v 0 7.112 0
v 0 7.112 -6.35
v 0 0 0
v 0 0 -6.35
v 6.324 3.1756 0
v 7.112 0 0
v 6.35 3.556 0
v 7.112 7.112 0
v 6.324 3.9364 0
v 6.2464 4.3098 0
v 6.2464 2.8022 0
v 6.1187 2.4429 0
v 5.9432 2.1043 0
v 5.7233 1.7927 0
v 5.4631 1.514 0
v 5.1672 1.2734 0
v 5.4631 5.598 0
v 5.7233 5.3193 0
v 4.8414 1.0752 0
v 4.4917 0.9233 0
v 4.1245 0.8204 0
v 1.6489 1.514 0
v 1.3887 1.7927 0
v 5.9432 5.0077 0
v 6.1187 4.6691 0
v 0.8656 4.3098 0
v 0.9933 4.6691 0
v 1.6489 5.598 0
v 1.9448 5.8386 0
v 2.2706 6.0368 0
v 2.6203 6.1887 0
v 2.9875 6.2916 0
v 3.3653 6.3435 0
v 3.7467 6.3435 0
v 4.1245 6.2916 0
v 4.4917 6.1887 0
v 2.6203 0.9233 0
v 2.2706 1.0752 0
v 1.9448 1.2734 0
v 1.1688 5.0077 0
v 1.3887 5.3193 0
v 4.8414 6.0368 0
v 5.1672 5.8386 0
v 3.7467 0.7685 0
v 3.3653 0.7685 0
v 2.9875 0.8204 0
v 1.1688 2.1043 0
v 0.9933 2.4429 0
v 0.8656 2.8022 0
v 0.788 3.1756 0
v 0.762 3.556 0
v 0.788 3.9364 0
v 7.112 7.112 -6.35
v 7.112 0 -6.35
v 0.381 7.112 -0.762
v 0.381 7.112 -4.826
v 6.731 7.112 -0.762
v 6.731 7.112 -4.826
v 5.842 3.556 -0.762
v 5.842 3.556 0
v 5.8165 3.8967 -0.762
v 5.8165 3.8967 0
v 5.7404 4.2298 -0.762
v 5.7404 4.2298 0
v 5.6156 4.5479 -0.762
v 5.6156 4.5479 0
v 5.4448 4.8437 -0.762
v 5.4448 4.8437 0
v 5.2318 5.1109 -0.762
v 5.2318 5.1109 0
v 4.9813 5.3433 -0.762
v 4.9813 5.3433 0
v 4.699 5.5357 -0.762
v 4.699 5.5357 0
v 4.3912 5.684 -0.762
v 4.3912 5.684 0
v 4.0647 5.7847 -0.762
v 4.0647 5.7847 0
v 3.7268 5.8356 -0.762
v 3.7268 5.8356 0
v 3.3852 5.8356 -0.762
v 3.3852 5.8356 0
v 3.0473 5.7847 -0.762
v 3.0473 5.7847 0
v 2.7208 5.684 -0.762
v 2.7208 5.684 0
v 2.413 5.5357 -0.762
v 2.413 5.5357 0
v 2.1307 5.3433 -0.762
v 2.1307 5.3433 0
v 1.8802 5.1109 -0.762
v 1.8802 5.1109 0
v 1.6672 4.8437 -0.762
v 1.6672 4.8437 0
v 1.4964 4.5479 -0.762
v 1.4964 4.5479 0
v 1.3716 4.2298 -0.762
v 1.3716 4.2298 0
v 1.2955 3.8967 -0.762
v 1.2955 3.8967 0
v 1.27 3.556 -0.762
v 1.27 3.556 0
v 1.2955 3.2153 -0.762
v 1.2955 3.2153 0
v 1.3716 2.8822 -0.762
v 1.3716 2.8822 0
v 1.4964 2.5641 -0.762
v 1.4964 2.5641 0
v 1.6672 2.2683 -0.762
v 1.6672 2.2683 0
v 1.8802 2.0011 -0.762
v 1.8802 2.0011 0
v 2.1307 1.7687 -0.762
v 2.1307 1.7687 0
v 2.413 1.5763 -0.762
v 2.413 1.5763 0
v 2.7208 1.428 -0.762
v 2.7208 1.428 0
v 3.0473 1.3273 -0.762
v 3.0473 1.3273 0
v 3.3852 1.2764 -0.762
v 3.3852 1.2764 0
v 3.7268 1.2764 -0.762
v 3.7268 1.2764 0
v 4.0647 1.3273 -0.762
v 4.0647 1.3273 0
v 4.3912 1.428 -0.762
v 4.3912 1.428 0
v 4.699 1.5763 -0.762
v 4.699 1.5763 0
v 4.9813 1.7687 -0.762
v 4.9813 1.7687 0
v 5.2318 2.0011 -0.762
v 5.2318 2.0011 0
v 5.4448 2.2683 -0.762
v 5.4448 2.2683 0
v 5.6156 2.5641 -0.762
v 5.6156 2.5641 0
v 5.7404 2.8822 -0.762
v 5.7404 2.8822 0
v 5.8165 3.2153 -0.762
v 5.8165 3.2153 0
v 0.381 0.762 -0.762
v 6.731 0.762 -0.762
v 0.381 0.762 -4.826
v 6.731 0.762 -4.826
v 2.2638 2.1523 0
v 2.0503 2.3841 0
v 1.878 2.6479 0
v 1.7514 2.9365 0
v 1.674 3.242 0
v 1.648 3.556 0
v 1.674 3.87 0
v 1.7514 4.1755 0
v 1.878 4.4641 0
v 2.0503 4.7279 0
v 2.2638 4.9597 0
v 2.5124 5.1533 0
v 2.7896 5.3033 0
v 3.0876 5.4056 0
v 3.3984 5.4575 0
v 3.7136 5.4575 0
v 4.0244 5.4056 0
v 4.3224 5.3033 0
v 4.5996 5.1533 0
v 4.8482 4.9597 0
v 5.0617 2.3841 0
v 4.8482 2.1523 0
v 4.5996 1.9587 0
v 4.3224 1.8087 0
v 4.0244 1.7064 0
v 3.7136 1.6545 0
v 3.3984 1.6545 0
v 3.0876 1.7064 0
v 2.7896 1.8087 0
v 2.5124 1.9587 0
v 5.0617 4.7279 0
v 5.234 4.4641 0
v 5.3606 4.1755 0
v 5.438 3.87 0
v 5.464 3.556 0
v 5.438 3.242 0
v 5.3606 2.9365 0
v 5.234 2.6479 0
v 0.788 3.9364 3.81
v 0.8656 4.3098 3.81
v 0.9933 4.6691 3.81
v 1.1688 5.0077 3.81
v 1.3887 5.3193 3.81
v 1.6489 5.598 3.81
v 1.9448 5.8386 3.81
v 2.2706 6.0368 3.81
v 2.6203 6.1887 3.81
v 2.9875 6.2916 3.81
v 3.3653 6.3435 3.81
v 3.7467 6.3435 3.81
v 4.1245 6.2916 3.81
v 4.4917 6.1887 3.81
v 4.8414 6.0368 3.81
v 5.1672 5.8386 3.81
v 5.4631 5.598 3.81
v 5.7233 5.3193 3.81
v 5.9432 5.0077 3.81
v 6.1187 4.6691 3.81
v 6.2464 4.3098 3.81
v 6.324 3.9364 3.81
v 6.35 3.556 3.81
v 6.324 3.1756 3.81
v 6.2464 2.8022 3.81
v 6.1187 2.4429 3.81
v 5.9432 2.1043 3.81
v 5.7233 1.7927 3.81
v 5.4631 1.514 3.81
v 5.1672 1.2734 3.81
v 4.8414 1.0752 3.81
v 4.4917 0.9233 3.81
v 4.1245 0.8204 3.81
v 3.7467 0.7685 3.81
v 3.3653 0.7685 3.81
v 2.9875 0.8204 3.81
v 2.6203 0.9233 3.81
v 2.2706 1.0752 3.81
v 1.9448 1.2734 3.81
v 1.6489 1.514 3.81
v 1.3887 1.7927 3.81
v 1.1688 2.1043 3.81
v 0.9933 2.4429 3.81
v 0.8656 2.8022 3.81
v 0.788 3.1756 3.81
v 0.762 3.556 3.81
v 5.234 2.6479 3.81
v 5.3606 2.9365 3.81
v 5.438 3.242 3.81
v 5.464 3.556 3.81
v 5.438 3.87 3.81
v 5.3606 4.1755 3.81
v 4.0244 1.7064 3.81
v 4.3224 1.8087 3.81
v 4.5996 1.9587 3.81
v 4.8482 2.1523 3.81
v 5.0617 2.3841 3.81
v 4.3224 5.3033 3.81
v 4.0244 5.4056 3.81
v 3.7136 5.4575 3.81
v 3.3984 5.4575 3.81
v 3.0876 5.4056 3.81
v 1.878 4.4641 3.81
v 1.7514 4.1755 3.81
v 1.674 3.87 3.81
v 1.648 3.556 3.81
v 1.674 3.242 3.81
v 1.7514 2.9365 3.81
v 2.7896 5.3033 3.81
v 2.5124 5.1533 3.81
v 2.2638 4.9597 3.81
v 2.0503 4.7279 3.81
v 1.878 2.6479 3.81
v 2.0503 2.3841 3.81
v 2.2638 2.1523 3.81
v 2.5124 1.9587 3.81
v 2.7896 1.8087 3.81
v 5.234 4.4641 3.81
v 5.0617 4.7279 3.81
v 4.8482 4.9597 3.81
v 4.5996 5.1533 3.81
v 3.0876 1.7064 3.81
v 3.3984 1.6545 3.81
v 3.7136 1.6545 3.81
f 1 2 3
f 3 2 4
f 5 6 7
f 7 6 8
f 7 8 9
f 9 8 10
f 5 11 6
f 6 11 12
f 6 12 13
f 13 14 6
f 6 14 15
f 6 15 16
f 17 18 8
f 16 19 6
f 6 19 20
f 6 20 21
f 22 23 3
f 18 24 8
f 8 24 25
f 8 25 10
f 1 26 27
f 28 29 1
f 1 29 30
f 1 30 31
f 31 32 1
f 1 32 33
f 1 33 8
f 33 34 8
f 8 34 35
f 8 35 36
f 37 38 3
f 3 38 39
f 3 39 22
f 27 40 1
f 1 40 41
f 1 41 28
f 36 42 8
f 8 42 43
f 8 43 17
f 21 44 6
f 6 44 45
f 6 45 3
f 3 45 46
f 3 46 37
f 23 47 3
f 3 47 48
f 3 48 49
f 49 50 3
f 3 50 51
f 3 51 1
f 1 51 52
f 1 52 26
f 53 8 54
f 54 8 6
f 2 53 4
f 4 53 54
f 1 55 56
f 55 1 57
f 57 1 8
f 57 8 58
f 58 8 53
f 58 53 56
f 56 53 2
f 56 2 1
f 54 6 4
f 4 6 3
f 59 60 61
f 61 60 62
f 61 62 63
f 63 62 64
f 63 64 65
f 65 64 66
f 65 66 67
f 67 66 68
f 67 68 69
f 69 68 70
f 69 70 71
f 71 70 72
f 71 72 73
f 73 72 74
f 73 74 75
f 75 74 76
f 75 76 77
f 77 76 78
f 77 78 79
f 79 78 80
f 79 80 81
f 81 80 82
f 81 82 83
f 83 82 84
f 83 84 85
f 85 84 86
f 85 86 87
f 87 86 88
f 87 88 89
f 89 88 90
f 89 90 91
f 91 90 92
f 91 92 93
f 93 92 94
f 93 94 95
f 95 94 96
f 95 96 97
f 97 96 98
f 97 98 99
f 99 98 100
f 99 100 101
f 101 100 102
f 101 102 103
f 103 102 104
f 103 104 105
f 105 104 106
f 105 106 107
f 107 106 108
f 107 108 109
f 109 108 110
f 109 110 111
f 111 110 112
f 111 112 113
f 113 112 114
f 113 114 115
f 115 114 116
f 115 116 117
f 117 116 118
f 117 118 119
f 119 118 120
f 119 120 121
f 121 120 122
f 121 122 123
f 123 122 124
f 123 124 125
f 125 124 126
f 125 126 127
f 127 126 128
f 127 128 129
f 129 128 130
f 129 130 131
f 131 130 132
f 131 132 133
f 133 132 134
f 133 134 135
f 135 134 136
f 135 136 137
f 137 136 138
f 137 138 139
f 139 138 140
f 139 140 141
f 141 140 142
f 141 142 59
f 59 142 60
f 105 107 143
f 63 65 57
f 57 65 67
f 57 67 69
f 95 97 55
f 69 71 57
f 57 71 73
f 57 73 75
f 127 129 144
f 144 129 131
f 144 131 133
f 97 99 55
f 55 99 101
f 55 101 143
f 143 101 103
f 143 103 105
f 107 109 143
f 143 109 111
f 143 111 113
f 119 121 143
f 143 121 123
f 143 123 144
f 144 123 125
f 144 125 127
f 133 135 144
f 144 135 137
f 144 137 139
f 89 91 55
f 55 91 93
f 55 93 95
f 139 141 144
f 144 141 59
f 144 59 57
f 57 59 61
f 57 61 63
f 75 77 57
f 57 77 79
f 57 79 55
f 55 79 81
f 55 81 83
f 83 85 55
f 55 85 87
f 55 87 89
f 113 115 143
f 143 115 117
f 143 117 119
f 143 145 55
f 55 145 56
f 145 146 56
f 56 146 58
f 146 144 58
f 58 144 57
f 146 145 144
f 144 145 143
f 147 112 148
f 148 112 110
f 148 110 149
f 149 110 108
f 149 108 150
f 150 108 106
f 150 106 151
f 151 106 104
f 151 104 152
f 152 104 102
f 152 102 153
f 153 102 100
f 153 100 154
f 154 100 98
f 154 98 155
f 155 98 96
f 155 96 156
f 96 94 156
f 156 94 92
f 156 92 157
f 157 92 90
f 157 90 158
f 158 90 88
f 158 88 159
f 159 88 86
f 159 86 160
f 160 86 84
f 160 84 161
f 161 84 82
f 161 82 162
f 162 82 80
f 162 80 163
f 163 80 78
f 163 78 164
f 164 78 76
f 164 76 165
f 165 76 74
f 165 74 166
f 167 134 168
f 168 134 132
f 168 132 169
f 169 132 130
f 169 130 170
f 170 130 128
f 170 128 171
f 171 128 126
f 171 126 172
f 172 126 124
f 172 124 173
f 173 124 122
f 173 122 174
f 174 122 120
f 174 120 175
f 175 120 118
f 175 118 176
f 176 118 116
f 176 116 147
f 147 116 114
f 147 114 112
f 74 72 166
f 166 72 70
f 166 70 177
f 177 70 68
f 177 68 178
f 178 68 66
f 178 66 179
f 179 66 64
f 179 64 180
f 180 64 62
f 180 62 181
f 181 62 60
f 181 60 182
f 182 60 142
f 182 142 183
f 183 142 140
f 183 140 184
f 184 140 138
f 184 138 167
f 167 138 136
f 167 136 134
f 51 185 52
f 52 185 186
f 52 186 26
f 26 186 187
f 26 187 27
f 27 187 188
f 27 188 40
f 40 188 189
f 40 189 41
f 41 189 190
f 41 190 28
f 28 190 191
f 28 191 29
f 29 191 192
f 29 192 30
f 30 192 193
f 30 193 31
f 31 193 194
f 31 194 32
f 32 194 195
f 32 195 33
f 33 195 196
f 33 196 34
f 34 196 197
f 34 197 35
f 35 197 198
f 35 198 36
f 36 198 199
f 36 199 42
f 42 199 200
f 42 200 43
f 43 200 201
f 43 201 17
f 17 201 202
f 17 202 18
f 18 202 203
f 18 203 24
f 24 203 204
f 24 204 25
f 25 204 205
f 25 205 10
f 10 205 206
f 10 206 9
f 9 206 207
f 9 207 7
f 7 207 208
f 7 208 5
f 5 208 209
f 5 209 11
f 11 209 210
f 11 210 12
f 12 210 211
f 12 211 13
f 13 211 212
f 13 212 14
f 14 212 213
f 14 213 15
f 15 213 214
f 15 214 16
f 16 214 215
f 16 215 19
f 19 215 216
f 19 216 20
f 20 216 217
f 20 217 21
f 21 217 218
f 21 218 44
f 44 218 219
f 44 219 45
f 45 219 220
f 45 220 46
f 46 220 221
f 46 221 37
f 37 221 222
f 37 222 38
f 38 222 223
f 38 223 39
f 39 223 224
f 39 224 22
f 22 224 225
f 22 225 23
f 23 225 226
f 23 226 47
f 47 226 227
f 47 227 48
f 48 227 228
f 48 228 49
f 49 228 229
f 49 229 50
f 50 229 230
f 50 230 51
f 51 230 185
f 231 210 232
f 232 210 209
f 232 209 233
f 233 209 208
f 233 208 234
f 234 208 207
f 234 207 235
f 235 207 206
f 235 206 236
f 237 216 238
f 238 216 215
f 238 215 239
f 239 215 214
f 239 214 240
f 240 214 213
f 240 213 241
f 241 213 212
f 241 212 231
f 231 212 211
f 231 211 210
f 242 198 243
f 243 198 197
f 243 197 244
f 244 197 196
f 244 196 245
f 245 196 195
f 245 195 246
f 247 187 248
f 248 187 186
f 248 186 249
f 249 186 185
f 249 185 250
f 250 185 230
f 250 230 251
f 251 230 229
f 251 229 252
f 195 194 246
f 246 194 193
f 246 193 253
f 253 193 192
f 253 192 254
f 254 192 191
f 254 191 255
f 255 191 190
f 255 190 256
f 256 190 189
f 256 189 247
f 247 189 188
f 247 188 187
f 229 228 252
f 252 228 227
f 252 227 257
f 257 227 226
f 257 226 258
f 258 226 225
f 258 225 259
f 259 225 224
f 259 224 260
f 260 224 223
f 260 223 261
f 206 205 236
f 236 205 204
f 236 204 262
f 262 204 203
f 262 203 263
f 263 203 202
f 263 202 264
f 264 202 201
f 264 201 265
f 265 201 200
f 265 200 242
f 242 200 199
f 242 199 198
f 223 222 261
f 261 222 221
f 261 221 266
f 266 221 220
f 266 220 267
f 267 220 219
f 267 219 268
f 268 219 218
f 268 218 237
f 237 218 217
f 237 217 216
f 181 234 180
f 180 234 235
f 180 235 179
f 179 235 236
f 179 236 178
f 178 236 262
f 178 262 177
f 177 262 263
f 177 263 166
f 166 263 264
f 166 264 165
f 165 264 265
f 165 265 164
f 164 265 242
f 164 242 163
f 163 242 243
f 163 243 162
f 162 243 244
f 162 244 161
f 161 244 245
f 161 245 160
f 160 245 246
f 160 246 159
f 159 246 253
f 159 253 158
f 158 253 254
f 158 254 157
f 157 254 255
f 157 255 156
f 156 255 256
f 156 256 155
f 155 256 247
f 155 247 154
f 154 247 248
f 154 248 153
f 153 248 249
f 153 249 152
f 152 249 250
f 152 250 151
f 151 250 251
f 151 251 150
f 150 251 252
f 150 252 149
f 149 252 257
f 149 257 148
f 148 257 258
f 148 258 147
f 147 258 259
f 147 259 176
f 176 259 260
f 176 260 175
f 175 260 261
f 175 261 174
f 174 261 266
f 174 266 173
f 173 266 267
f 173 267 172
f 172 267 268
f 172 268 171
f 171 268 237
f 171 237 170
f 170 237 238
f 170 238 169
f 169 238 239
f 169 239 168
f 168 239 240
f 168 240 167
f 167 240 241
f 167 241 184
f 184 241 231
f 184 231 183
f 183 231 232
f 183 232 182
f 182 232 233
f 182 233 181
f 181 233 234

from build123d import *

# Parameters (mm, degrees)
SKETCH1_W           = 7.112
SKETCH1_H           = 6.35
BOSS_EXTRUDE1_DEPTH = 7.112
SKETCH2_R           = 2.286
CUT_EXTRUDE1_DEPTH  = 1.27
SKETCH3_W           = 6.35
SKETCH3_H           = 4.064
CUT_EXTRUDE2_DEPTH  = 6.35
SKETCH4_R           = 2.794
BOSS_EXTRUDE2_DEPTH = 3.81
SKETCH6_R           = 1.907980072
CUT_EXTRUDE3_DEPTH  = 3.81


with BuildPart() as part:
    # Sketch1 → Boss-Extrude1 (new body)
    with BuildSketch(Plane(origin=(0, 0, 0), x_dir=(1, 0, 0), z_dir=(0, 1, 0))):
        with Locations((3.556, 3.175)):
            Rectangle(SKETCH1_W, SKETCH1_H)
    extrude(amount=BOSS_EXTRUDE1_DEPTH)

    # Sketch2 → Cut-Extrude1 (cut)
    with BuildSketch(Plane.XY):
        with Locations((3.556, 3.556)):
            Circle(SKETCH2_R)
    extrude(amount=-CUT_EXTRUDE1_DEPTH, mode=Mode.SUBTRACT)

    # Sketch3 → Cut-Extrude2 (cut)
    with BuildSketch(Plane(origin=(0, 7.112, 0), x_dir=(1, 0, 0), z_dir=(0, 1, 0))):
        with Locations((3.556, 2.794)):
            Rectangle(SKETCH3_W, SKETCH3_H)
    extrude(amount=-CUT_EXTRUDE2_DEPTH, mode=Mode.SUBTRACT)

    # Sketch4 → Boss-Extrude2 (add)
    with BuildSketch(Plane.XY):
        with Locations(Location((3.556, 3.556, 0), (0, 0, 180))):
            Circle(SKETCH4_R)
    extrude(amount=BOSS_EXTRUDE2_DEPTH)

    # Sketch6 → Cut-Extrude3 (cut)
    with BuildSketch(Plane.XY.offset(3.81)):
        with Locations((3.556, 3.556)):
            Circle(SKETCH6_R)
    extrude(amount=-CUT_EXTRUDE3_DEPTH, mode=Mode.SUBTRACT)


solid = part.part
